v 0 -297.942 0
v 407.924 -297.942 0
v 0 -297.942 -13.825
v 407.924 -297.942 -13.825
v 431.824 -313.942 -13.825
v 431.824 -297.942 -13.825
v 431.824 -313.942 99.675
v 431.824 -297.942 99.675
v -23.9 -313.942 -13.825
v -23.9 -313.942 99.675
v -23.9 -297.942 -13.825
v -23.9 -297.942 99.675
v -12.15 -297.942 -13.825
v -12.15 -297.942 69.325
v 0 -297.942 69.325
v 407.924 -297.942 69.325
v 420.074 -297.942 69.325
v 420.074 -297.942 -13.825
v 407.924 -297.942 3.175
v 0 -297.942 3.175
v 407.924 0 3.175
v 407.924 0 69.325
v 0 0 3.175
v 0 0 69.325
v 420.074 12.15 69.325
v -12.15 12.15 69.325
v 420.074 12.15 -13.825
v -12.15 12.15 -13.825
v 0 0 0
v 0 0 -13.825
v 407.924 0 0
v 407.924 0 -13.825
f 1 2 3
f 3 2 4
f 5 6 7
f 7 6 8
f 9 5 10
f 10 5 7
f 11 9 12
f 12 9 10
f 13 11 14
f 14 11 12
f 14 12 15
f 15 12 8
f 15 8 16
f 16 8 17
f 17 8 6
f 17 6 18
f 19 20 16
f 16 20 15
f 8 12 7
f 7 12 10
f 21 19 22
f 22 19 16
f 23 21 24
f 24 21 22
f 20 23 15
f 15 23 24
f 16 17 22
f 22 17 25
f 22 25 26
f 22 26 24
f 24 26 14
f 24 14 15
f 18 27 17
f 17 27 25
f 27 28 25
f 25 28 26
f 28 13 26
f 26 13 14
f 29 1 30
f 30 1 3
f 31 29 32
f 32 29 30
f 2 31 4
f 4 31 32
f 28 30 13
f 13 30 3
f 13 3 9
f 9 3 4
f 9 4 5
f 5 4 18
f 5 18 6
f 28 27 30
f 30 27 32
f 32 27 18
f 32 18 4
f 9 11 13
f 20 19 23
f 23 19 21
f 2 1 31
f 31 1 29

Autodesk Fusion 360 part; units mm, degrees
sketch "Sketch1" plane through (0, 0, 0) normal (0, 0, 1) x (1, 0, 0)
  line L0 (0, 0) -> (407.924, 0)
  line L1 (407.924, 0) -> (407.924, -297.942)
  line L2 (407.924, -297.942) -> (0, -297.942)
  line L3 (0, -297.942) -> (0, 0)
  dimension "d1" = 407.924
  dimension "d2" = 297.942
extrude "Extrude1" add sketch "Sketch1" along normal blind 3.175
sketch "Sketch2" plane through (0, 0, 3.175) normal (0, 0, 1) x (-1, 0, 0)
  line L0 (0, 297.942) -> (-407.924, 297.942)
  line L1 (-407.924, 297.942) -> (-407.924, 0)
  line L2 (-407.924, 0) -> (0, 0)
  line L3 (0, 0) -> (0, 297.942)
  line L4 (-420.074, 297.942) -> (-420.074, -12.15)
  line L5 (-420.074, -12.15) -> (12.15, -12.15)
  line L6 (12.15, -12.15) -> (12.15, 297.942)
  line L7 (0, 297.942) -> (12.15, 297.942)
  line L8 (12.15, 297.942) -> (-420.074, 297.942)
extrude "Extrude2" add sketch "Sketch2" against normal blind 17 contours L1 L2 L3 L4 L5 L6 L7 L8
sketch "Sketch3" plane through (0, 0, 3.175) normal (0, 0, 1) x (-1, 0, 0)
  line L0 (12.15, 297.942) -> (-420.074, 297.942)
  line L1 (-420.074, 297.942) -> (-420.074, -12.15)
  line L2 (-420.074, -12.15) -> (12.15, -12.15)
  line L3 (12.15, -12.15) -> (12.15, 297.942)
  line L4 (-407.924, 285.792) -> (-407.924, 0)
  line L5 (-407.924, 0) -> (0, 0)
  line L6 (0, 0) -> (0, 285.792)
  line L7 (0, 285.792) -> (-407.924, 285.792)
  line L8 (0, 285.792) -> (0, 297.942)
  line L9 (-407.924, 285.792) -> (-407.924, 297.942)
  line L10 (-407.924, 297.942) -> (0, 297.942)
  line L11 (0, 297.942) -> (12.15, 297.942)
  line L12 (12.15, 297.942) -> (12.15, -12.15)
  line L13 (12.15, -12.15) -> (0, -12.15)
  line L14 (-420.074, -12.15) -> (-420.074, 297.942)
  line L15 (-420.074, 297.942) -> (-407.924, 297.942)
  line L16 (-420.074, -12.15) -> (12.15, -12.15)
  dimension "d8" = -12.15
extrude "Extrude3" add sketch "Sketch3" along normal blind 66.15 contours L0 L1 L2 L3 L4 L5 L6 L8 L9 L11 L12 L13 L14 L15 L16
sketch "Sketch4" plane through (0, 0, -13.825) normal (0, 0, -1) x (1, 0, 0)
  line L0 (420.074, 297.942) -> (407.924, 297.942)
  line L1 (407.924, 297.942) -> (407.924, 0)
  line L2 (407.924, 0) -> (0, 0)
  line L3 (0, 0) -> (0, 297.942)
  line L4 (0, 297.942) -> (-12.15, 297.942)
  line L5 (-12.15, 297.942) -> (-12.15, -12.15)
  line L6 (-12.15, -12.15) -> (420.074, -12.15)
  line L7 (420.074, -12.15) -> (420.074, 297.942)
  line L8 (-12.15, 297.942) -> (-23.9, 297.942)
  line L9 (420.074, 297.942) -> (431.824, 297.942)
  line L10 (-23.9, 297.942) -> (-23.9, 313.942)
  line L11 (431.824, 297.942) -> (431.824, 313.942)
  line L12 (-23.9, 313.942) -> (431.824, 313.942)
  line L13 (-12.15, 297.942) -> (420.074, 297.942)
  dimension "d11" = 11.75
  dimension "d12" = 11.75
  dimension "d14" = 16
  dimension "d15" = 16
extrude "Extrude4" add sketch "Sketch4" against normal blind 113.5 contours L0 L4 L8 L9 L10 L11 L12 L13
